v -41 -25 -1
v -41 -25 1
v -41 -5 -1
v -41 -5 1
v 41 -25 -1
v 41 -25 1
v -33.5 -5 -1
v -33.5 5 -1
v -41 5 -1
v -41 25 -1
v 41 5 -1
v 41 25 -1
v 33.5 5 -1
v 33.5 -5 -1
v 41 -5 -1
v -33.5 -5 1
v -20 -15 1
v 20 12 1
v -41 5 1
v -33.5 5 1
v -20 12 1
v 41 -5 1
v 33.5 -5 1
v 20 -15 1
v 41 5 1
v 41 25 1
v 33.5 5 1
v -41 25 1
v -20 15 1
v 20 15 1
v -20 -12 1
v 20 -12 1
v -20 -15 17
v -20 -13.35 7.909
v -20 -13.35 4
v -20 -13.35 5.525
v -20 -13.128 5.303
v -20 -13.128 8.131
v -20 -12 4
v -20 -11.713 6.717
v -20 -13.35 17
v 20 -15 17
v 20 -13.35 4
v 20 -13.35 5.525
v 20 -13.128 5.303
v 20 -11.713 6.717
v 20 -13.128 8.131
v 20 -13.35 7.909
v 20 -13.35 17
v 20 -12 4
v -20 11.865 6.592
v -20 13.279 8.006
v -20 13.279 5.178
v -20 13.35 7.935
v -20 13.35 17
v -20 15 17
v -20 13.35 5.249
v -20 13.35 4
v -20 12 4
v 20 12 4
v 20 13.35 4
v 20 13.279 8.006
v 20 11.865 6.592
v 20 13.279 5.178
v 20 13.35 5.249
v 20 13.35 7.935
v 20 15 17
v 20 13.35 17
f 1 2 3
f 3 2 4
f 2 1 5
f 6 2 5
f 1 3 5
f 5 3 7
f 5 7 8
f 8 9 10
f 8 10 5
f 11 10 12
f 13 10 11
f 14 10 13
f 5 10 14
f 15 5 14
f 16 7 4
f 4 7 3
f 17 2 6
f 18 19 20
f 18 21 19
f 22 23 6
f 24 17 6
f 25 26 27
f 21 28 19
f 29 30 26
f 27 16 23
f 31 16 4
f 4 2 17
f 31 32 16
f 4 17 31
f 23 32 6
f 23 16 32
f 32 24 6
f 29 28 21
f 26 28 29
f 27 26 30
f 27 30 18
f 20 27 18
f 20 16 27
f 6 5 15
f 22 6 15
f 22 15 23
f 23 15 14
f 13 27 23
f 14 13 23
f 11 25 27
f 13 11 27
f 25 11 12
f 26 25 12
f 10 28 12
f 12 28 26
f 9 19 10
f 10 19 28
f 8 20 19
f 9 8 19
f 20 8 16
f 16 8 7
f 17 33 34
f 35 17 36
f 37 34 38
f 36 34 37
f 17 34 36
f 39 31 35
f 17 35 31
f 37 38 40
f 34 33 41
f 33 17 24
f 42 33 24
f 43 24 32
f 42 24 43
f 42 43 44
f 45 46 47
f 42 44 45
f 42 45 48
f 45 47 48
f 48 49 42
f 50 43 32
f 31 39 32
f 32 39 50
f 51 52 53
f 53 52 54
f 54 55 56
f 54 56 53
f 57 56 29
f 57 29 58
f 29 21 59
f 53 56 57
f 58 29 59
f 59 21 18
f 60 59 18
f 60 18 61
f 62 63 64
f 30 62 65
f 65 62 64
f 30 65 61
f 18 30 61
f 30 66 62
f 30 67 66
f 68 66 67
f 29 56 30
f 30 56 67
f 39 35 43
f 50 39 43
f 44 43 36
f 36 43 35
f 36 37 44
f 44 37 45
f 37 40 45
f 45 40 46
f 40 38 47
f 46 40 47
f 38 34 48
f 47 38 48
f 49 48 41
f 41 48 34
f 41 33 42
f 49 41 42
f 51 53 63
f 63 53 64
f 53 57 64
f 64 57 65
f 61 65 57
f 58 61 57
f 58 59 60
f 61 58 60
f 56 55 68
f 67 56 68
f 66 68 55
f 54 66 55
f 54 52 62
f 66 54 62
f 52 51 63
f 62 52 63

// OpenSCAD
// Ramsey SA7 Preamp, Plate mount for Altoids Tin
//
// Colin Faulkingham
// 08/25/2013


difference(){
	cube([82,50,2],center=true); 
	// Type F connectors on each side
	translate([38.5,0,0]) cube([10,10,5],center=true);
	translate([-38.5,0,0]) cube([10,10,5],center=true);
}
difference(){
	translate([0,0,8]) cube([40,30,18],center=true);
	translate([0,0,7]) cube([40,26.70,20],center=true);
}

// PCB holder Top
translate([0,.06,10.5]) rotate([45,0,0]) translate([0,-12,6.65]) cube([40,2,2],center=true);
translate([0,9.5,-6.6]) rotate([45,0,0]) translate([0,12,6.656]) cube([40,2,2],center=true);


// PCB holder Base
translate([0,-13,2]) cube([40,2,4],center=true);
translate([0,13,2]) cube([40,2,4],center=true);

	
